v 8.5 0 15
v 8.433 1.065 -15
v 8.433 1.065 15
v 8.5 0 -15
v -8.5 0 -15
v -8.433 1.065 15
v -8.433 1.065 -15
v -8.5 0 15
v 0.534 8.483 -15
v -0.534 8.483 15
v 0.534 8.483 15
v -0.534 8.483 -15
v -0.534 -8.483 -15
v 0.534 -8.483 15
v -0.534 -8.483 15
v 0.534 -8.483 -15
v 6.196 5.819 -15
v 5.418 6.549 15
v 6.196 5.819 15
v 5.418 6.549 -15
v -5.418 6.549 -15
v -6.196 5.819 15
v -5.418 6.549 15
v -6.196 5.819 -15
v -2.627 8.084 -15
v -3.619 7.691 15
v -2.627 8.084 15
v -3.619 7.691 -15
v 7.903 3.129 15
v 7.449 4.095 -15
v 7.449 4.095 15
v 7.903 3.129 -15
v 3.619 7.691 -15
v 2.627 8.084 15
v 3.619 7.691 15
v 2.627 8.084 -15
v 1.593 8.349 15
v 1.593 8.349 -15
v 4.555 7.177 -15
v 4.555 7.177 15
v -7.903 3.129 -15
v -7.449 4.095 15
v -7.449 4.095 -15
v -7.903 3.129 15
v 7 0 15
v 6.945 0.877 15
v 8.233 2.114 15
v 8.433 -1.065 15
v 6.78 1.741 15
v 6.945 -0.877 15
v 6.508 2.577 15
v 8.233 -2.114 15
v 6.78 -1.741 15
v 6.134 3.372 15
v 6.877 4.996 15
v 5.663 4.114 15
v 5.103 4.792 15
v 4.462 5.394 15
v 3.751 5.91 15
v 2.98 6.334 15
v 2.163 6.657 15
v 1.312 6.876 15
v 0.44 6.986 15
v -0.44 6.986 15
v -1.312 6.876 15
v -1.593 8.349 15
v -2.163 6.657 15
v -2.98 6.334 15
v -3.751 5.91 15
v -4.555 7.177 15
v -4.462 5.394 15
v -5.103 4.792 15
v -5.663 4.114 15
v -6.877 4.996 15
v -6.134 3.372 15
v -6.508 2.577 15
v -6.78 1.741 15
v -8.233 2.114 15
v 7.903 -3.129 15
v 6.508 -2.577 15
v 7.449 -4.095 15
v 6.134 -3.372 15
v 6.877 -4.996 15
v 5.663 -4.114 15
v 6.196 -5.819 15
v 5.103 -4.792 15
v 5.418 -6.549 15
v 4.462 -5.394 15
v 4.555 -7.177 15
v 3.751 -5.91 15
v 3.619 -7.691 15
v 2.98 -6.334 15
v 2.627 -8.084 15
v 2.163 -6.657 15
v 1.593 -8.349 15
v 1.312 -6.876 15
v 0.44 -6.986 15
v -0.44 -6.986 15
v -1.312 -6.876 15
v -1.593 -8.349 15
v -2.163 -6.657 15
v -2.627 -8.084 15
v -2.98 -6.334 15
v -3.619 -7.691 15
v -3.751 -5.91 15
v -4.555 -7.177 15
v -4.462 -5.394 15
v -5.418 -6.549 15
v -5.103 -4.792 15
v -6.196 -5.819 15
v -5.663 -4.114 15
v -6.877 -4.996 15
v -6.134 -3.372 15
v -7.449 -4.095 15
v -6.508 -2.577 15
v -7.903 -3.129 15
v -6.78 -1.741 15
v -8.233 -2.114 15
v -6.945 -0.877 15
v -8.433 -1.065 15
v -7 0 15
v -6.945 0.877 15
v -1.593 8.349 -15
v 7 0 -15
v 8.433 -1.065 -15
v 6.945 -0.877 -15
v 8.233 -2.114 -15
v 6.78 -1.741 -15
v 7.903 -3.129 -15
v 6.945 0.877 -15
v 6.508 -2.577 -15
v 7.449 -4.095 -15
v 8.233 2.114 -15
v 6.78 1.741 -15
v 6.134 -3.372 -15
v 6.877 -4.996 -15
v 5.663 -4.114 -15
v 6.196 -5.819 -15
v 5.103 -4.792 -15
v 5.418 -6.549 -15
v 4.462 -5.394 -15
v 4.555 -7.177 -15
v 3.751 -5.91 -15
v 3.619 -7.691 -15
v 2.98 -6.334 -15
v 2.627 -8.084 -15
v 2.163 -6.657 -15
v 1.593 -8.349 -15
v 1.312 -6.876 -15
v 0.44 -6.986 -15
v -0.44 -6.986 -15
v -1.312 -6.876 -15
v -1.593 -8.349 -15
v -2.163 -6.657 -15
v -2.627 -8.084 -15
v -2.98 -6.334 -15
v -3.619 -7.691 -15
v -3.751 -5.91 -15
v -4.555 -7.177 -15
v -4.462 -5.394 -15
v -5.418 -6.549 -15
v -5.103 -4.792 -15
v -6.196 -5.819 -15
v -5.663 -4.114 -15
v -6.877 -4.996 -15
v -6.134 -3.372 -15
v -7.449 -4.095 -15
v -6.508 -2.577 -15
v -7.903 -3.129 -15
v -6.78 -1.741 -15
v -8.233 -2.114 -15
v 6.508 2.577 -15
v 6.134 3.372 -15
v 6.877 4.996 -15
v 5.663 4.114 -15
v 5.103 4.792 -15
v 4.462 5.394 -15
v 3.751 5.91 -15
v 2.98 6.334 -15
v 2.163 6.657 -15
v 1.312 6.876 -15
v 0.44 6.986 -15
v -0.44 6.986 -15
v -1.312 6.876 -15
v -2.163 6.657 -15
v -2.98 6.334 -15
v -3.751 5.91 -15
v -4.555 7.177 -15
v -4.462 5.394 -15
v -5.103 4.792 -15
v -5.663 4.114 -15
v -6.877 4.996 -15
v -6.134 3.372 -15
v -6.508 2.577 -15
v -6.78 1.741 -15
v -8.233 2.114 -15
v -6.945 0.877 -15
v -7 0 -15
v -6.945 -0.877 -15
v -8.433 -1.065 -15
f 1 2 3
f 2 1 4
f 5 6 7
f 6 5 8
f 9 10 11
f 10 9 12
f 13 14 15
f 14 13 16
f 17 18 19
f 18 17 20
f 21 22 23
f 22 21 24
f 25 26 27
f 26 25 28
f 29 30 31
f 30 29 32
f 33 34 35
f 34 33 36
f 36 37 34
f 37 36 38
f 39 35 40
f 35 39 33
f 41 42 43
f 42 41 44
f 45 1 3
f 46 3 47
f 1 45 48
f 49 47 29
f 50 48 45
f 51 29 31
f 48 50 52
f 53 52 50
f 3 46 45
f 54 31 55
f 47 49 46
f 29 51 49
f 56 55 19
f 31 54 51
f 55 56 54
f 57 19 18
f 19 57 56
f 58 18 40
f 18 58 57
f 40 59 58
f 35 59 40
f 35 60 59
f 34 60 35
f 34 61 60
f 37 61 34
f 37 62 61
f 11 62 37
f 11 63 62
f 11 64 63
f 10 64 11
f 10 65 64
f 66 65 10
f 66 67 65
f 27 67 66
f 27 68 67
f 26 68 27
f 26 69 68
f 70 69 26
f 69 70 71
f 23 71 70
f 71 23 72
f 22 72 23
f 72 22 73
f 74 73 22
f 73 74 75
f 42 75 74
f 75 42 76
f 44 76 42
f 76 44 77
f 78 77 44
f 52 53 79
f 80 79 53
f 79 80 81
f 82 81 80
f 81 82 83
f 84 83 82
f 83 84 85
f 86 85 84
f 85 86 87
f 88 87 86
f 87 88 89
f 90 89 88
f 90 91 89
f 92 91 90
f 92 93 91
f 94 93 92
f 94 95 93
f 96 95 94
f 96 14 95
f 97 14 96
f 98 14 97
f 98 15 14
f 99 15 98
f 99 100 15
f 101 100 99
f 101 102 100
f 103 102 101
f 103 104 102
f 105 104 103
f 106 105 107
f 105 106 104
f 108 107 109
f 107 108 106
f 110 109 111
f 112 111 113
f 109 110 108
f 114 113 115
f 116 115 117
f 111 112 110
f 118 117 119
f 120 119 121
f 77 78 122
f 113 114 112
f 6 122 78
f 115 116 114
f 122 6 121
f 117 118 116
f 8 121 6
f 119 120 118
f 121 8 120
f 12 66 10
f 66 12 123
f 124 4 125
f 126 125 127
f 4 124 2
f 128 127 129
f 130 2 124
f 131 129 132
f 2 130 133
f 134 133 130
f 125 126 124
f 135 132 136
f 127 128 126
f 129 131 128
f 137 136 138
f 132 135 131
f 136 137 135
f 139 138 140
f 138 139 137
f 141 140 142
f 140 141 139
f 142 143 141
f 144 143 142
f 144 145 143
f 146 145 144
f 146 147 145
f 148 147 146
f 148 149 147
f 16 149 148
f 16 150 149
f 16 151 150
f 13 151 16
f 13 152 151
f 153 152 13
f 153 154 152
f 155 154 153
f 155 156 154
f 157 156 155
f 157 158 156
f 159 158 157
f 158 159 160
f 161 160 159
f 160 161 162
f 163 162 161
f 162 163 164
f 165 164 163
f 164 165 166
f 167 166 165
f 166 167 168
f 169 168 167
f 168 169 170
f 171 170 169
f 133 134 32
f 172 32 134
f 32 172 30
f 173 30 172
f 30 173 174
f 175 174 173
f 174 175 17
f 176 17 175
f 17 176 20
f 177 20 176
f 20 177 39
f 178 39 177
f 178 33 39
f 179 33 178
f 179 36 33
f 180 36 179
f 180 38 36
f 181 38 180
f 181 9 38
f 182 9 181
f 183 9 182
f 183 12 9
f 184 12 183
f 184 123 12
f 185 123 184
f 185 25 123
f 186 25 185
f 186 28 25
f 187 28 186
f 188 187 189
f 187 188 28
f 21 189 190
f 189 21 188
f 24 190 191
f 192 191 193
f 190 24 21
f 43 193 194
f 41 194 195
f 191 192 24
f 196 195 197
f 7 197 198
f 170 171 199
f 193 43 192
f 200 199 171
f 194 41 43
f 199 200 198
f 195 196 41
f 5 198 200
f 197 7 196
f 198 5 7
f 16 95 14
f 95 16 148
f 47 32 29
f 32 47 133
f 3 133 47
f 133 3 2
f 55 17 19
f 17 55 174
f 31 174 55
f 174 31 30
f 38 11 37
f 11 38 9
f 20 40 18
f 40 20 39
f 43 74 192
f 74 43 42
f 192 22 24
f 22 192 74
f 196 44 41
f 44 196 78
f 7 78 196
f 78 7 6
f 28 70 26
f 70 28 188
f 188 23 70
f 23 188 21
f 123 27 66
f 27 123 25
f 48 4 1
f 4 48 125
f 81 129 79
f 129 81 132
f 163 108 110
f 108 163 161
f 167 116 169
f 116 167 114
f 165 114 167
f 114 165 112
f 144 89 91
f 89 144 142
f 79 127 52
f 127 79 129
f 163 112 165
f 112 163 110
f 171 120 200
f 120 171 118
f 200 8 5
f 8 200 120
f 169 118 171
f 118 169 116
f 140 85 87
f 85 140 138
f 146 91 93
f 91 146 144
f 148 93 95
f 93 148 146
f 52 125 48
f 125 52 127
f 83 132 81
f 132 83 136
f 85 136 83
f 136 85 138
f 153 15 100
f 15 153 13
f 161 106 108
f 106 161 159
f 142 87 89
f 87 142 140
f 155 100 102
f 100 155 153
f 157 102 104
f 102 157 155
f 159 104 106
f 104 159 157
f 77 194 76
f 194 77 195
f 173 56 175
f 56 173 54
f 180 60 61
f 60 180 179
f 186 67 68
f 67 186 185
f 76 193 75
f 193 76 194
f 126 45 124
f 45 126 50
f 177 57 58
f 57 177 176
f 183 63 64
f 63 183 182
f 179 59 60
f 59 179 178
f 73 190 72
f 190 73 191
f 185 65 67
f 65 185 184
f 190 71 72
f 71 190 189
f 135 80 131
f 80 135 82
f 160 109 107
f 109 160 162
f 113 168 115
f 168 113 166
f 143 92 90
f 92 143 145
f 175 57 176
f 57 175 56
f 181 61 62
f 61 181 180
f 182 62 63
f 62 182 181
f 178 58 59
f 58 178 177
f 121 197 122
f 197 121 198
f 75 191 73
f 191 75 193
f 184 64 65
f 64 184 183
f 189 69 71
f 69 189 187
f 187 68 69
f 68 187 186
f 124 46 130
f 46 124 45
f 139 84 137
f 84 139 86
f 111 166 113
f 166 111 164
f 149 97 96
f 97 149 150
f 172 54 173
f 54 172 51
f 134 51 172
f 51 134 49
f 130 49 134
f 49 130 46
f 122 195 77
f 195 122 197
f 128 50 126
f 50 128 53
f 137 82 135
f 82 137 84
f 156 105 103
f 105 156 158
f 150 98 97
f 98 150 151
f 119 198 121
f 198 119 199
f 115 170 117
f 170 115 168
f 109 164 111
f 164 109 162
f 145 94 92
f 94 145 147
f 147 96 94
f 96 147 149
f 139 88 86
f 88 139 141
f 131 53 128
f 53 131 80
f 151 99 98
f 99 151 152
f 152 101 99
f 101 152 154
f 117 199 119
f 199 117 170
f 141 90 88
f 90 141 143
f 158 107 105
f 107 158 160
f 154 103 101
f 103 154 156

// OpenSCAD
$fn = 50;


difference() {
	union() {
		translate(v = [0, 0, -15.0000000000]) {
			cylinder(h = 30, r = 8.5000000000);
		}
	}
	union() {
		translate(v = [0, 0, -100.0000000000]) {
			cylinder(h = 200, r = 7);
		}
	}
}
